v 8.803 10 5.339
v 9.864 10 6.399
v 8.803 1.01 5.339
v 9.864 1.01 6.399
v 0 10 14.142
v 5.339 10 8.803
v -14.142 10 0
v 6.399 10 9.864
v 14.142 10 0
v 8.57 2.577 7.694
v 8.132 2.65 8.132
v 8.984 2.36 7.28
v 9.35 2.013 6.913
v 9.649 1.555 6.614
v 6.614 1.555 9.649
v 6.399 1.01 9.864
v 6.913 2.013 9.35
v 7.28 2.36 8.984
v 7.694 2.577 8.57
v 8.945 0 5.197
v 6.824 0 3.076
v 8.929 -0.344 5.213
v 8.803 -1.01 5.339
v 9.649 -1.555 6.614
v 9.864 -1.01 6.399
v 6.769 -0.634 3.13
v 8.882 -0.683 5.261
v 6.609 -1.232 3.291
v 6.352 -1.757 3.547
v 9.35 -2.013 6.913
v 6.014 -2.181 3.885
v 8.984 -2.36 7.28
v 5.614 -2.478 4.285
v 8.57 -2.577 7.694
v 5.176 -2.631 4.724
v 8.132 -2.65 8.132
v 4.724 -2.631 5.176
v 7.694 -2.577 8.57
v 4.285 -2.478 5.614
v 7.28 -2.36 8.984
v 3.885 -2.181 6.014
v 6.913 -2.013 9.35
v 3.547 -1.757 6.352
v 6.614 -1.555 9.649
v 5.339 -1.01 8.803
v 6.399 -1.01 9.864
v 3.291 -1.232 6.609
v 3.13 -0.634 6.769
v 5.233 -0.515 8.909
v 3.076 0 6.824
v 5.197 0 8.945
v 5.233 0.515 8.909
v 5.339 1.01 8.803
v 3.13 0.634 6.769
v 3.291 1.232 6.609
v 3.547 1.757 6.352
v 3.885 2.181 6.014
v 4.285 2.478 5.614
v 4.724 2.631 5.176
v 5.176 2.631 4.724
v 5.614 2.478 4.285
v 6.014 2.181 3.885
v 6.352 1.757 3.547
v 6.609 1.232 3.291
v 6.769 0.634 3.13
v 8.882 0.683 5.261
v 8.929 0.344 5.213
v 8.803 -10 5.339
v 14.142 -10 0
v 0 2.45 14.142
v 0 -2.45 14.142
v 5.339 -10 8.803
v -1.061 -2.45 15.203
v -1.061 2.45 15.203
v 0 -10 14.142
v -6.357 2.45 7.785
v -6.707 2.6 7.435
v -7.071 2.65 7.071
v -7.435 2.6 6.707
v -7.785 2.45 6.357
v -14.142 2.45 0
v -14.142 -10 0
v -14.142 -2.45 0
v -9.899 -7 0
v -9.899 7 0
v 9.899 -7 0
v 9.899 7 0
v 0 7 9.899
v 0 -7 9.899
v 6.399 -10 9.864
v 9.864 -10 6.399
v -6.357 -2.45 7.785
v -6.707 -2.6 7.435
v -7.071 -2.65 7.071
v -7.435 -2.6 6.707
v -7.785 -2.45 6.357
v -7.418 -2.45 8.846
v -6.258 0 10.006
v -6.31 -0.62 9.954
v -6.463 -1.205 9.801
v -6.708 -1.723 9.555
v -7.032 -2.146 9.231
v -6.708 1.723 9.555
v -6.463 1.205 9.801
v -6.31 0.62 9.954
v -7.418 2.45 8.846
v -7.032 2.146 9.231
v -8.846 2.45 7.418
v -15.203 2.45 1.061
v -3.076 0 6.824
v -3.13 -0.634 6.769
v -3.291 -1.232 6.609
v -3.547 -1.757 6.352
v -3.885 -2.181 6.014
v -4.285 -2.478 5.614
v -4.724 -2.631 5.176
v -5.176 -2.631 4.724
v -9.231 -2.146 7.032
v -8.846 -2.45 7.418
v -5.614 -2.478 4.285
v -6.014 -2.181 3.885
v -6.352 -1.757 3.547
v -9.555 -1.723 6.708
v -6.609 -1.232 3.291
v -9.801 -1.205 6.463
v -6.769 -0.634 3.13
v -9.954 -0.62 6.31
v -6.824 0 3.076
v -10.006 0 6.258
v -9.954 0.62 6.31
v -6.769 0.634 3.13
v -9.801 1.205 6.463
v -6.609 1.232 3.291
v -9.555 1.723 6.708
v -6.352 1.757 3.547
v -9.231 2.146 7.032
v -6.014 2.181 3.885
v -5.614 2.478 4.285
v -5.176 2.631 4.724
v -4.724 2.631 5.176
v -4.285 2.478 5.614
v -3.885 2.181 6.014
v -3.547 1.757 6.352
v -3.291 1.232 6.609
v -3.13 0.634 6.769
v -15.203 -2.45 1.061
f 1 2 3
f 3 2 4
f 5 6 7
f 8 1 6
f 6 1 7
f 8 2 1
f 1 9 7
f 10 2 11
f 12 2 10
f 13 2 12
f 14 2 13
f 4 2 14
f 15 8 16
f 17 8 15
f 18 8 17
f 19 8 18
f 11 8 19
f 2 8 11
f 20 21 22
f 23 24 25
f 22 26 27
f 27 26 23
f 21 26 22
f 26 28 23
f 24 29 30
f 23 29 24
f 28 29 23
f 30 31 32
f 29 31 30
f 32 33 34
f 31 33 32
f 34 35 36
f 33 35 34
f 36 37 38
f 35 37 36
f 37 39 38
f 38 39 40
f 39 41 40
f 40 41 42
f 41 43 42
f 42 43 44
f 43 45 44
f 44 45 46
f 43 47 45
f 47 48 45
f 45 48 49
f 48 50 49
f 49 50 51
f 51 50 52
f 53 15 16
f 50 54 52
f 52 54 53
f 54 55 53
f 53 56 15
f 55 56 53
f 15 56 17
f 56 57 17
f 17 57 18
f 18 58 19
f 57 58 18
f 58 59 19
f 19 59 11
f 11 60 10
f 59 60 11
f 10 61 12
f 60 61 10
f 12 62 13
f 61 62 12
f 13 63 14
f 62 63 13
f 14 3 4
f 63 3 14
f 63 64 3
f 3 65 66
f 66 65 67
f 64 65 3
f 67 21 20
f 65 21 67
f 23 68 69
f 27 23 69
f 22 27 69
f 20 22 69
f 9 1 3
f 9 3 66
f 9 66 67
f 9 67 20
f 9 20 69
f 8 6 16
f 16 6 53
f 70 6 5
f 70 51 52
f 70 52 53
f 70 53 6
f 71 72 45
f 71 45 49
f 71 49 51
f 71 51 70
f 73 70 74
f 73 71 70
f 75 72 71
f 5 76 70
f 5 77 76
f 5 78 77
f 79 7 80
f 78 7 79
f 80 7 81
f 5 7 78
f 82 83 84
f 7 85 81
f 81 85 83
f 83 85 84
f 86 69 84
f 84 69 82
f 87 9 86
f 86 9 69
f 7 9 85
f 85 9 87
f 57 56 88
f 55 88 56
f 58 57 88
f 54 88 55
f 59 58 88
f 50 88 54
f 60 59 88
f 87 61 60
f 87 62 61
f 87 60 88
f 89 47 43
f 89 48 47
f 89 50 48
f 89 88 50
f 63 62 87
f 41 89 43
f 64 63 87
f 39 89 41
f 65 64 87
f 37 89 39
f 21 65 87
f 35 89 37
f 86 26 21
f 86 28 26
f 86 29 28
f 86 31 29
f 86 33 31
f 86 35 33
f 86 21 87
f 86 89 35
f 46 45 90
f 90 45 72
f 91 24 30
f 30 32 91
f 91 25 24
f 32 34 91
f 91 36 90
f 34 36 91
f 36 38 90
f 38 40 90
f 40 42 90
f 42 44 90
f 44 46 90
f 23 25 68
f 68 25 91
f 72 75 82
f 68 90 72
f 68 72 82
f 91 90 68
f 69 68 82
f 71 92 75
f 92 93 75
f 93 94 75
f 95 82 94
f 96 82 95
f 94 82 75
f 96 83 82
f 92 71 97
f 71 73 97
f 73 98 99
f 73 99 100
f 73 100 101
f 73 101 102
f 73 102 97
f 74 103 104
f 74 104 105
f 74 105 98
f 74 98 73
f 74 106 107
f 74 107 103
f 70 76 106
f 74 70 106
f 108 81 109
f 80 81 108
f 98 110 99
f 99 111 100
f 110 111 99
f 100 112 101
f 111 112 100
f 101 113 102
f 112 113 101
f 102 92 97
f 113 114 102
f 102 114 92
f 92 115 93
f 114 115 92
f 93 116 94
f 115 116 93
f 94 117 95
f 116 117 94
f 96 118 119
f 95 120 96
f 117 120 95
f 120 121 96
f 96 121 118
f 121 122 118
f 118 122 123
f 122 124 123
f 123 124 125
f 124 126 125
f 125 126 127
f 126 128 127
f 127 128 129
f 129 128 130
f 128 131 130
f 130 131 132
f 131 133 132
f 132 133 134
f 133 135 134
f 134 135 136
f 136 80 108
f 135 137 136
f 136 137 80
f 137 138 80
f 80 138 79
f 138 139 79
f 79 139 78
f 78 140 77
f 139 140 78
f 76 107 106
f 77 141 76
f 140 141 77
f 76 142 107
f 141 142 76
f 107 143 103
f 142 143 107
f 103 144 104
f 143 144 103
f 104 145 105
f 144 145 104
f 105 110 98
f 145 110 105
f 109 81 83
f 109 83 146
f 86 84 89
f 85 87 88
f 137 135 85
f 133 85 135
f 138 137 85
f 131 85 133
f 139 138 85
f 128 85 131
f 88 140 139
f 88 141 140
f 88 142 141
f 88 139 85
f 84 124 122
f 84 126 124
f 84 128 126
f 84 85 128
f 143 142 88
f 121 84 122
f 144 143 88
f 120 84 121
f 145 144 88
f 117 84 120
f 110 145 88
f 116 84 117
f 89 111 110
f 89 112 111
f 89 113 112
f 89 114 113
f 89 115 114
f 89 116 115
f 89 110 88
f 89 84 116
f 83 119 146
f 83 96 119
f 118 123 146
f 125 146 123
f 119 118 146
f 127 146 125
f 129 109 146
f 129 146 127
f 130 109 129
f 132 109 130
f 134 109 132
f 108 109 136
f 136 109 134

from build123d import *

# Parameters (mm, degrees)
PAD_DEPTH       = 10
PAD001_DEPTH    = 2.45
POCKET_DEPTH    = 7
SKETCH003_R     = 2.65
POCKET001_DEPTH = 13.751
SKETCH004_R     = 2.65
POCKET002_DEPTH = 5


with BuildPart() as part:
    # Sketch → Pad (new body, symmetric)
    with BuildSketch(Plane.XZ):
        Polygon((0, 14.142136), (-14.142136, 0), (14.142136, 0), (8.803479, 5.338656), (9.86414, 6.399316), (6.399316, 9.86414), (5.338656, 8.803479), align=None)
    extrude(amount=PAD_DEPTH, both=True)

    # Sketch001 → Pad001 (join, symmetric)
    with BuildSketch(Plane.XZ):
        Polygon((0, 14.142136), (-14.142136, 0), (-15.202796, 1.06066), (-1.06066, 15.202796), align=None)
    extrude(amount=PAD001_DEPTH, both=True)

    # Sketch002 → Pocket (cut, symmetric)
    with BuildSketch(Plane.XZ):
        Polygon((-9.899495, 0), (0, 9.899495), (9.899495, 0), align=None)
    extrude(amount=POCKET_DEPTH, both=True, mode=Mode.SUBTRACT)

    # Sketch003 (on Face13 of Pocket) → Pocket001 (cut, through all)
    with BuildSketch(Plane(origin=(4.949747, 0, 4.949747), x_dir=(0.707107, 0, -0.707107), z_dir=(-0.707107, 0, -0.707107))):
        Circle(SKETCH003_R)
    extrude(amount=-POCKET001_DEPTH, mode=Mode.SUBTRACT)

    # Sketch004 (on Face22 of Pocket001) → Pocket002 (cut)
    with BuildSketch(Plane(origin=(-4.949747, 0, 4.949747), x_dir=(0.707107, 0, 0.707107), z_dir=(0.707107, 0, -0.707107))):
        Circle(SKETCH004_R)
    extrude(amount=-POCKET002_DEPTH, mode=Mode.SUBTRACT)


solid = part.part
